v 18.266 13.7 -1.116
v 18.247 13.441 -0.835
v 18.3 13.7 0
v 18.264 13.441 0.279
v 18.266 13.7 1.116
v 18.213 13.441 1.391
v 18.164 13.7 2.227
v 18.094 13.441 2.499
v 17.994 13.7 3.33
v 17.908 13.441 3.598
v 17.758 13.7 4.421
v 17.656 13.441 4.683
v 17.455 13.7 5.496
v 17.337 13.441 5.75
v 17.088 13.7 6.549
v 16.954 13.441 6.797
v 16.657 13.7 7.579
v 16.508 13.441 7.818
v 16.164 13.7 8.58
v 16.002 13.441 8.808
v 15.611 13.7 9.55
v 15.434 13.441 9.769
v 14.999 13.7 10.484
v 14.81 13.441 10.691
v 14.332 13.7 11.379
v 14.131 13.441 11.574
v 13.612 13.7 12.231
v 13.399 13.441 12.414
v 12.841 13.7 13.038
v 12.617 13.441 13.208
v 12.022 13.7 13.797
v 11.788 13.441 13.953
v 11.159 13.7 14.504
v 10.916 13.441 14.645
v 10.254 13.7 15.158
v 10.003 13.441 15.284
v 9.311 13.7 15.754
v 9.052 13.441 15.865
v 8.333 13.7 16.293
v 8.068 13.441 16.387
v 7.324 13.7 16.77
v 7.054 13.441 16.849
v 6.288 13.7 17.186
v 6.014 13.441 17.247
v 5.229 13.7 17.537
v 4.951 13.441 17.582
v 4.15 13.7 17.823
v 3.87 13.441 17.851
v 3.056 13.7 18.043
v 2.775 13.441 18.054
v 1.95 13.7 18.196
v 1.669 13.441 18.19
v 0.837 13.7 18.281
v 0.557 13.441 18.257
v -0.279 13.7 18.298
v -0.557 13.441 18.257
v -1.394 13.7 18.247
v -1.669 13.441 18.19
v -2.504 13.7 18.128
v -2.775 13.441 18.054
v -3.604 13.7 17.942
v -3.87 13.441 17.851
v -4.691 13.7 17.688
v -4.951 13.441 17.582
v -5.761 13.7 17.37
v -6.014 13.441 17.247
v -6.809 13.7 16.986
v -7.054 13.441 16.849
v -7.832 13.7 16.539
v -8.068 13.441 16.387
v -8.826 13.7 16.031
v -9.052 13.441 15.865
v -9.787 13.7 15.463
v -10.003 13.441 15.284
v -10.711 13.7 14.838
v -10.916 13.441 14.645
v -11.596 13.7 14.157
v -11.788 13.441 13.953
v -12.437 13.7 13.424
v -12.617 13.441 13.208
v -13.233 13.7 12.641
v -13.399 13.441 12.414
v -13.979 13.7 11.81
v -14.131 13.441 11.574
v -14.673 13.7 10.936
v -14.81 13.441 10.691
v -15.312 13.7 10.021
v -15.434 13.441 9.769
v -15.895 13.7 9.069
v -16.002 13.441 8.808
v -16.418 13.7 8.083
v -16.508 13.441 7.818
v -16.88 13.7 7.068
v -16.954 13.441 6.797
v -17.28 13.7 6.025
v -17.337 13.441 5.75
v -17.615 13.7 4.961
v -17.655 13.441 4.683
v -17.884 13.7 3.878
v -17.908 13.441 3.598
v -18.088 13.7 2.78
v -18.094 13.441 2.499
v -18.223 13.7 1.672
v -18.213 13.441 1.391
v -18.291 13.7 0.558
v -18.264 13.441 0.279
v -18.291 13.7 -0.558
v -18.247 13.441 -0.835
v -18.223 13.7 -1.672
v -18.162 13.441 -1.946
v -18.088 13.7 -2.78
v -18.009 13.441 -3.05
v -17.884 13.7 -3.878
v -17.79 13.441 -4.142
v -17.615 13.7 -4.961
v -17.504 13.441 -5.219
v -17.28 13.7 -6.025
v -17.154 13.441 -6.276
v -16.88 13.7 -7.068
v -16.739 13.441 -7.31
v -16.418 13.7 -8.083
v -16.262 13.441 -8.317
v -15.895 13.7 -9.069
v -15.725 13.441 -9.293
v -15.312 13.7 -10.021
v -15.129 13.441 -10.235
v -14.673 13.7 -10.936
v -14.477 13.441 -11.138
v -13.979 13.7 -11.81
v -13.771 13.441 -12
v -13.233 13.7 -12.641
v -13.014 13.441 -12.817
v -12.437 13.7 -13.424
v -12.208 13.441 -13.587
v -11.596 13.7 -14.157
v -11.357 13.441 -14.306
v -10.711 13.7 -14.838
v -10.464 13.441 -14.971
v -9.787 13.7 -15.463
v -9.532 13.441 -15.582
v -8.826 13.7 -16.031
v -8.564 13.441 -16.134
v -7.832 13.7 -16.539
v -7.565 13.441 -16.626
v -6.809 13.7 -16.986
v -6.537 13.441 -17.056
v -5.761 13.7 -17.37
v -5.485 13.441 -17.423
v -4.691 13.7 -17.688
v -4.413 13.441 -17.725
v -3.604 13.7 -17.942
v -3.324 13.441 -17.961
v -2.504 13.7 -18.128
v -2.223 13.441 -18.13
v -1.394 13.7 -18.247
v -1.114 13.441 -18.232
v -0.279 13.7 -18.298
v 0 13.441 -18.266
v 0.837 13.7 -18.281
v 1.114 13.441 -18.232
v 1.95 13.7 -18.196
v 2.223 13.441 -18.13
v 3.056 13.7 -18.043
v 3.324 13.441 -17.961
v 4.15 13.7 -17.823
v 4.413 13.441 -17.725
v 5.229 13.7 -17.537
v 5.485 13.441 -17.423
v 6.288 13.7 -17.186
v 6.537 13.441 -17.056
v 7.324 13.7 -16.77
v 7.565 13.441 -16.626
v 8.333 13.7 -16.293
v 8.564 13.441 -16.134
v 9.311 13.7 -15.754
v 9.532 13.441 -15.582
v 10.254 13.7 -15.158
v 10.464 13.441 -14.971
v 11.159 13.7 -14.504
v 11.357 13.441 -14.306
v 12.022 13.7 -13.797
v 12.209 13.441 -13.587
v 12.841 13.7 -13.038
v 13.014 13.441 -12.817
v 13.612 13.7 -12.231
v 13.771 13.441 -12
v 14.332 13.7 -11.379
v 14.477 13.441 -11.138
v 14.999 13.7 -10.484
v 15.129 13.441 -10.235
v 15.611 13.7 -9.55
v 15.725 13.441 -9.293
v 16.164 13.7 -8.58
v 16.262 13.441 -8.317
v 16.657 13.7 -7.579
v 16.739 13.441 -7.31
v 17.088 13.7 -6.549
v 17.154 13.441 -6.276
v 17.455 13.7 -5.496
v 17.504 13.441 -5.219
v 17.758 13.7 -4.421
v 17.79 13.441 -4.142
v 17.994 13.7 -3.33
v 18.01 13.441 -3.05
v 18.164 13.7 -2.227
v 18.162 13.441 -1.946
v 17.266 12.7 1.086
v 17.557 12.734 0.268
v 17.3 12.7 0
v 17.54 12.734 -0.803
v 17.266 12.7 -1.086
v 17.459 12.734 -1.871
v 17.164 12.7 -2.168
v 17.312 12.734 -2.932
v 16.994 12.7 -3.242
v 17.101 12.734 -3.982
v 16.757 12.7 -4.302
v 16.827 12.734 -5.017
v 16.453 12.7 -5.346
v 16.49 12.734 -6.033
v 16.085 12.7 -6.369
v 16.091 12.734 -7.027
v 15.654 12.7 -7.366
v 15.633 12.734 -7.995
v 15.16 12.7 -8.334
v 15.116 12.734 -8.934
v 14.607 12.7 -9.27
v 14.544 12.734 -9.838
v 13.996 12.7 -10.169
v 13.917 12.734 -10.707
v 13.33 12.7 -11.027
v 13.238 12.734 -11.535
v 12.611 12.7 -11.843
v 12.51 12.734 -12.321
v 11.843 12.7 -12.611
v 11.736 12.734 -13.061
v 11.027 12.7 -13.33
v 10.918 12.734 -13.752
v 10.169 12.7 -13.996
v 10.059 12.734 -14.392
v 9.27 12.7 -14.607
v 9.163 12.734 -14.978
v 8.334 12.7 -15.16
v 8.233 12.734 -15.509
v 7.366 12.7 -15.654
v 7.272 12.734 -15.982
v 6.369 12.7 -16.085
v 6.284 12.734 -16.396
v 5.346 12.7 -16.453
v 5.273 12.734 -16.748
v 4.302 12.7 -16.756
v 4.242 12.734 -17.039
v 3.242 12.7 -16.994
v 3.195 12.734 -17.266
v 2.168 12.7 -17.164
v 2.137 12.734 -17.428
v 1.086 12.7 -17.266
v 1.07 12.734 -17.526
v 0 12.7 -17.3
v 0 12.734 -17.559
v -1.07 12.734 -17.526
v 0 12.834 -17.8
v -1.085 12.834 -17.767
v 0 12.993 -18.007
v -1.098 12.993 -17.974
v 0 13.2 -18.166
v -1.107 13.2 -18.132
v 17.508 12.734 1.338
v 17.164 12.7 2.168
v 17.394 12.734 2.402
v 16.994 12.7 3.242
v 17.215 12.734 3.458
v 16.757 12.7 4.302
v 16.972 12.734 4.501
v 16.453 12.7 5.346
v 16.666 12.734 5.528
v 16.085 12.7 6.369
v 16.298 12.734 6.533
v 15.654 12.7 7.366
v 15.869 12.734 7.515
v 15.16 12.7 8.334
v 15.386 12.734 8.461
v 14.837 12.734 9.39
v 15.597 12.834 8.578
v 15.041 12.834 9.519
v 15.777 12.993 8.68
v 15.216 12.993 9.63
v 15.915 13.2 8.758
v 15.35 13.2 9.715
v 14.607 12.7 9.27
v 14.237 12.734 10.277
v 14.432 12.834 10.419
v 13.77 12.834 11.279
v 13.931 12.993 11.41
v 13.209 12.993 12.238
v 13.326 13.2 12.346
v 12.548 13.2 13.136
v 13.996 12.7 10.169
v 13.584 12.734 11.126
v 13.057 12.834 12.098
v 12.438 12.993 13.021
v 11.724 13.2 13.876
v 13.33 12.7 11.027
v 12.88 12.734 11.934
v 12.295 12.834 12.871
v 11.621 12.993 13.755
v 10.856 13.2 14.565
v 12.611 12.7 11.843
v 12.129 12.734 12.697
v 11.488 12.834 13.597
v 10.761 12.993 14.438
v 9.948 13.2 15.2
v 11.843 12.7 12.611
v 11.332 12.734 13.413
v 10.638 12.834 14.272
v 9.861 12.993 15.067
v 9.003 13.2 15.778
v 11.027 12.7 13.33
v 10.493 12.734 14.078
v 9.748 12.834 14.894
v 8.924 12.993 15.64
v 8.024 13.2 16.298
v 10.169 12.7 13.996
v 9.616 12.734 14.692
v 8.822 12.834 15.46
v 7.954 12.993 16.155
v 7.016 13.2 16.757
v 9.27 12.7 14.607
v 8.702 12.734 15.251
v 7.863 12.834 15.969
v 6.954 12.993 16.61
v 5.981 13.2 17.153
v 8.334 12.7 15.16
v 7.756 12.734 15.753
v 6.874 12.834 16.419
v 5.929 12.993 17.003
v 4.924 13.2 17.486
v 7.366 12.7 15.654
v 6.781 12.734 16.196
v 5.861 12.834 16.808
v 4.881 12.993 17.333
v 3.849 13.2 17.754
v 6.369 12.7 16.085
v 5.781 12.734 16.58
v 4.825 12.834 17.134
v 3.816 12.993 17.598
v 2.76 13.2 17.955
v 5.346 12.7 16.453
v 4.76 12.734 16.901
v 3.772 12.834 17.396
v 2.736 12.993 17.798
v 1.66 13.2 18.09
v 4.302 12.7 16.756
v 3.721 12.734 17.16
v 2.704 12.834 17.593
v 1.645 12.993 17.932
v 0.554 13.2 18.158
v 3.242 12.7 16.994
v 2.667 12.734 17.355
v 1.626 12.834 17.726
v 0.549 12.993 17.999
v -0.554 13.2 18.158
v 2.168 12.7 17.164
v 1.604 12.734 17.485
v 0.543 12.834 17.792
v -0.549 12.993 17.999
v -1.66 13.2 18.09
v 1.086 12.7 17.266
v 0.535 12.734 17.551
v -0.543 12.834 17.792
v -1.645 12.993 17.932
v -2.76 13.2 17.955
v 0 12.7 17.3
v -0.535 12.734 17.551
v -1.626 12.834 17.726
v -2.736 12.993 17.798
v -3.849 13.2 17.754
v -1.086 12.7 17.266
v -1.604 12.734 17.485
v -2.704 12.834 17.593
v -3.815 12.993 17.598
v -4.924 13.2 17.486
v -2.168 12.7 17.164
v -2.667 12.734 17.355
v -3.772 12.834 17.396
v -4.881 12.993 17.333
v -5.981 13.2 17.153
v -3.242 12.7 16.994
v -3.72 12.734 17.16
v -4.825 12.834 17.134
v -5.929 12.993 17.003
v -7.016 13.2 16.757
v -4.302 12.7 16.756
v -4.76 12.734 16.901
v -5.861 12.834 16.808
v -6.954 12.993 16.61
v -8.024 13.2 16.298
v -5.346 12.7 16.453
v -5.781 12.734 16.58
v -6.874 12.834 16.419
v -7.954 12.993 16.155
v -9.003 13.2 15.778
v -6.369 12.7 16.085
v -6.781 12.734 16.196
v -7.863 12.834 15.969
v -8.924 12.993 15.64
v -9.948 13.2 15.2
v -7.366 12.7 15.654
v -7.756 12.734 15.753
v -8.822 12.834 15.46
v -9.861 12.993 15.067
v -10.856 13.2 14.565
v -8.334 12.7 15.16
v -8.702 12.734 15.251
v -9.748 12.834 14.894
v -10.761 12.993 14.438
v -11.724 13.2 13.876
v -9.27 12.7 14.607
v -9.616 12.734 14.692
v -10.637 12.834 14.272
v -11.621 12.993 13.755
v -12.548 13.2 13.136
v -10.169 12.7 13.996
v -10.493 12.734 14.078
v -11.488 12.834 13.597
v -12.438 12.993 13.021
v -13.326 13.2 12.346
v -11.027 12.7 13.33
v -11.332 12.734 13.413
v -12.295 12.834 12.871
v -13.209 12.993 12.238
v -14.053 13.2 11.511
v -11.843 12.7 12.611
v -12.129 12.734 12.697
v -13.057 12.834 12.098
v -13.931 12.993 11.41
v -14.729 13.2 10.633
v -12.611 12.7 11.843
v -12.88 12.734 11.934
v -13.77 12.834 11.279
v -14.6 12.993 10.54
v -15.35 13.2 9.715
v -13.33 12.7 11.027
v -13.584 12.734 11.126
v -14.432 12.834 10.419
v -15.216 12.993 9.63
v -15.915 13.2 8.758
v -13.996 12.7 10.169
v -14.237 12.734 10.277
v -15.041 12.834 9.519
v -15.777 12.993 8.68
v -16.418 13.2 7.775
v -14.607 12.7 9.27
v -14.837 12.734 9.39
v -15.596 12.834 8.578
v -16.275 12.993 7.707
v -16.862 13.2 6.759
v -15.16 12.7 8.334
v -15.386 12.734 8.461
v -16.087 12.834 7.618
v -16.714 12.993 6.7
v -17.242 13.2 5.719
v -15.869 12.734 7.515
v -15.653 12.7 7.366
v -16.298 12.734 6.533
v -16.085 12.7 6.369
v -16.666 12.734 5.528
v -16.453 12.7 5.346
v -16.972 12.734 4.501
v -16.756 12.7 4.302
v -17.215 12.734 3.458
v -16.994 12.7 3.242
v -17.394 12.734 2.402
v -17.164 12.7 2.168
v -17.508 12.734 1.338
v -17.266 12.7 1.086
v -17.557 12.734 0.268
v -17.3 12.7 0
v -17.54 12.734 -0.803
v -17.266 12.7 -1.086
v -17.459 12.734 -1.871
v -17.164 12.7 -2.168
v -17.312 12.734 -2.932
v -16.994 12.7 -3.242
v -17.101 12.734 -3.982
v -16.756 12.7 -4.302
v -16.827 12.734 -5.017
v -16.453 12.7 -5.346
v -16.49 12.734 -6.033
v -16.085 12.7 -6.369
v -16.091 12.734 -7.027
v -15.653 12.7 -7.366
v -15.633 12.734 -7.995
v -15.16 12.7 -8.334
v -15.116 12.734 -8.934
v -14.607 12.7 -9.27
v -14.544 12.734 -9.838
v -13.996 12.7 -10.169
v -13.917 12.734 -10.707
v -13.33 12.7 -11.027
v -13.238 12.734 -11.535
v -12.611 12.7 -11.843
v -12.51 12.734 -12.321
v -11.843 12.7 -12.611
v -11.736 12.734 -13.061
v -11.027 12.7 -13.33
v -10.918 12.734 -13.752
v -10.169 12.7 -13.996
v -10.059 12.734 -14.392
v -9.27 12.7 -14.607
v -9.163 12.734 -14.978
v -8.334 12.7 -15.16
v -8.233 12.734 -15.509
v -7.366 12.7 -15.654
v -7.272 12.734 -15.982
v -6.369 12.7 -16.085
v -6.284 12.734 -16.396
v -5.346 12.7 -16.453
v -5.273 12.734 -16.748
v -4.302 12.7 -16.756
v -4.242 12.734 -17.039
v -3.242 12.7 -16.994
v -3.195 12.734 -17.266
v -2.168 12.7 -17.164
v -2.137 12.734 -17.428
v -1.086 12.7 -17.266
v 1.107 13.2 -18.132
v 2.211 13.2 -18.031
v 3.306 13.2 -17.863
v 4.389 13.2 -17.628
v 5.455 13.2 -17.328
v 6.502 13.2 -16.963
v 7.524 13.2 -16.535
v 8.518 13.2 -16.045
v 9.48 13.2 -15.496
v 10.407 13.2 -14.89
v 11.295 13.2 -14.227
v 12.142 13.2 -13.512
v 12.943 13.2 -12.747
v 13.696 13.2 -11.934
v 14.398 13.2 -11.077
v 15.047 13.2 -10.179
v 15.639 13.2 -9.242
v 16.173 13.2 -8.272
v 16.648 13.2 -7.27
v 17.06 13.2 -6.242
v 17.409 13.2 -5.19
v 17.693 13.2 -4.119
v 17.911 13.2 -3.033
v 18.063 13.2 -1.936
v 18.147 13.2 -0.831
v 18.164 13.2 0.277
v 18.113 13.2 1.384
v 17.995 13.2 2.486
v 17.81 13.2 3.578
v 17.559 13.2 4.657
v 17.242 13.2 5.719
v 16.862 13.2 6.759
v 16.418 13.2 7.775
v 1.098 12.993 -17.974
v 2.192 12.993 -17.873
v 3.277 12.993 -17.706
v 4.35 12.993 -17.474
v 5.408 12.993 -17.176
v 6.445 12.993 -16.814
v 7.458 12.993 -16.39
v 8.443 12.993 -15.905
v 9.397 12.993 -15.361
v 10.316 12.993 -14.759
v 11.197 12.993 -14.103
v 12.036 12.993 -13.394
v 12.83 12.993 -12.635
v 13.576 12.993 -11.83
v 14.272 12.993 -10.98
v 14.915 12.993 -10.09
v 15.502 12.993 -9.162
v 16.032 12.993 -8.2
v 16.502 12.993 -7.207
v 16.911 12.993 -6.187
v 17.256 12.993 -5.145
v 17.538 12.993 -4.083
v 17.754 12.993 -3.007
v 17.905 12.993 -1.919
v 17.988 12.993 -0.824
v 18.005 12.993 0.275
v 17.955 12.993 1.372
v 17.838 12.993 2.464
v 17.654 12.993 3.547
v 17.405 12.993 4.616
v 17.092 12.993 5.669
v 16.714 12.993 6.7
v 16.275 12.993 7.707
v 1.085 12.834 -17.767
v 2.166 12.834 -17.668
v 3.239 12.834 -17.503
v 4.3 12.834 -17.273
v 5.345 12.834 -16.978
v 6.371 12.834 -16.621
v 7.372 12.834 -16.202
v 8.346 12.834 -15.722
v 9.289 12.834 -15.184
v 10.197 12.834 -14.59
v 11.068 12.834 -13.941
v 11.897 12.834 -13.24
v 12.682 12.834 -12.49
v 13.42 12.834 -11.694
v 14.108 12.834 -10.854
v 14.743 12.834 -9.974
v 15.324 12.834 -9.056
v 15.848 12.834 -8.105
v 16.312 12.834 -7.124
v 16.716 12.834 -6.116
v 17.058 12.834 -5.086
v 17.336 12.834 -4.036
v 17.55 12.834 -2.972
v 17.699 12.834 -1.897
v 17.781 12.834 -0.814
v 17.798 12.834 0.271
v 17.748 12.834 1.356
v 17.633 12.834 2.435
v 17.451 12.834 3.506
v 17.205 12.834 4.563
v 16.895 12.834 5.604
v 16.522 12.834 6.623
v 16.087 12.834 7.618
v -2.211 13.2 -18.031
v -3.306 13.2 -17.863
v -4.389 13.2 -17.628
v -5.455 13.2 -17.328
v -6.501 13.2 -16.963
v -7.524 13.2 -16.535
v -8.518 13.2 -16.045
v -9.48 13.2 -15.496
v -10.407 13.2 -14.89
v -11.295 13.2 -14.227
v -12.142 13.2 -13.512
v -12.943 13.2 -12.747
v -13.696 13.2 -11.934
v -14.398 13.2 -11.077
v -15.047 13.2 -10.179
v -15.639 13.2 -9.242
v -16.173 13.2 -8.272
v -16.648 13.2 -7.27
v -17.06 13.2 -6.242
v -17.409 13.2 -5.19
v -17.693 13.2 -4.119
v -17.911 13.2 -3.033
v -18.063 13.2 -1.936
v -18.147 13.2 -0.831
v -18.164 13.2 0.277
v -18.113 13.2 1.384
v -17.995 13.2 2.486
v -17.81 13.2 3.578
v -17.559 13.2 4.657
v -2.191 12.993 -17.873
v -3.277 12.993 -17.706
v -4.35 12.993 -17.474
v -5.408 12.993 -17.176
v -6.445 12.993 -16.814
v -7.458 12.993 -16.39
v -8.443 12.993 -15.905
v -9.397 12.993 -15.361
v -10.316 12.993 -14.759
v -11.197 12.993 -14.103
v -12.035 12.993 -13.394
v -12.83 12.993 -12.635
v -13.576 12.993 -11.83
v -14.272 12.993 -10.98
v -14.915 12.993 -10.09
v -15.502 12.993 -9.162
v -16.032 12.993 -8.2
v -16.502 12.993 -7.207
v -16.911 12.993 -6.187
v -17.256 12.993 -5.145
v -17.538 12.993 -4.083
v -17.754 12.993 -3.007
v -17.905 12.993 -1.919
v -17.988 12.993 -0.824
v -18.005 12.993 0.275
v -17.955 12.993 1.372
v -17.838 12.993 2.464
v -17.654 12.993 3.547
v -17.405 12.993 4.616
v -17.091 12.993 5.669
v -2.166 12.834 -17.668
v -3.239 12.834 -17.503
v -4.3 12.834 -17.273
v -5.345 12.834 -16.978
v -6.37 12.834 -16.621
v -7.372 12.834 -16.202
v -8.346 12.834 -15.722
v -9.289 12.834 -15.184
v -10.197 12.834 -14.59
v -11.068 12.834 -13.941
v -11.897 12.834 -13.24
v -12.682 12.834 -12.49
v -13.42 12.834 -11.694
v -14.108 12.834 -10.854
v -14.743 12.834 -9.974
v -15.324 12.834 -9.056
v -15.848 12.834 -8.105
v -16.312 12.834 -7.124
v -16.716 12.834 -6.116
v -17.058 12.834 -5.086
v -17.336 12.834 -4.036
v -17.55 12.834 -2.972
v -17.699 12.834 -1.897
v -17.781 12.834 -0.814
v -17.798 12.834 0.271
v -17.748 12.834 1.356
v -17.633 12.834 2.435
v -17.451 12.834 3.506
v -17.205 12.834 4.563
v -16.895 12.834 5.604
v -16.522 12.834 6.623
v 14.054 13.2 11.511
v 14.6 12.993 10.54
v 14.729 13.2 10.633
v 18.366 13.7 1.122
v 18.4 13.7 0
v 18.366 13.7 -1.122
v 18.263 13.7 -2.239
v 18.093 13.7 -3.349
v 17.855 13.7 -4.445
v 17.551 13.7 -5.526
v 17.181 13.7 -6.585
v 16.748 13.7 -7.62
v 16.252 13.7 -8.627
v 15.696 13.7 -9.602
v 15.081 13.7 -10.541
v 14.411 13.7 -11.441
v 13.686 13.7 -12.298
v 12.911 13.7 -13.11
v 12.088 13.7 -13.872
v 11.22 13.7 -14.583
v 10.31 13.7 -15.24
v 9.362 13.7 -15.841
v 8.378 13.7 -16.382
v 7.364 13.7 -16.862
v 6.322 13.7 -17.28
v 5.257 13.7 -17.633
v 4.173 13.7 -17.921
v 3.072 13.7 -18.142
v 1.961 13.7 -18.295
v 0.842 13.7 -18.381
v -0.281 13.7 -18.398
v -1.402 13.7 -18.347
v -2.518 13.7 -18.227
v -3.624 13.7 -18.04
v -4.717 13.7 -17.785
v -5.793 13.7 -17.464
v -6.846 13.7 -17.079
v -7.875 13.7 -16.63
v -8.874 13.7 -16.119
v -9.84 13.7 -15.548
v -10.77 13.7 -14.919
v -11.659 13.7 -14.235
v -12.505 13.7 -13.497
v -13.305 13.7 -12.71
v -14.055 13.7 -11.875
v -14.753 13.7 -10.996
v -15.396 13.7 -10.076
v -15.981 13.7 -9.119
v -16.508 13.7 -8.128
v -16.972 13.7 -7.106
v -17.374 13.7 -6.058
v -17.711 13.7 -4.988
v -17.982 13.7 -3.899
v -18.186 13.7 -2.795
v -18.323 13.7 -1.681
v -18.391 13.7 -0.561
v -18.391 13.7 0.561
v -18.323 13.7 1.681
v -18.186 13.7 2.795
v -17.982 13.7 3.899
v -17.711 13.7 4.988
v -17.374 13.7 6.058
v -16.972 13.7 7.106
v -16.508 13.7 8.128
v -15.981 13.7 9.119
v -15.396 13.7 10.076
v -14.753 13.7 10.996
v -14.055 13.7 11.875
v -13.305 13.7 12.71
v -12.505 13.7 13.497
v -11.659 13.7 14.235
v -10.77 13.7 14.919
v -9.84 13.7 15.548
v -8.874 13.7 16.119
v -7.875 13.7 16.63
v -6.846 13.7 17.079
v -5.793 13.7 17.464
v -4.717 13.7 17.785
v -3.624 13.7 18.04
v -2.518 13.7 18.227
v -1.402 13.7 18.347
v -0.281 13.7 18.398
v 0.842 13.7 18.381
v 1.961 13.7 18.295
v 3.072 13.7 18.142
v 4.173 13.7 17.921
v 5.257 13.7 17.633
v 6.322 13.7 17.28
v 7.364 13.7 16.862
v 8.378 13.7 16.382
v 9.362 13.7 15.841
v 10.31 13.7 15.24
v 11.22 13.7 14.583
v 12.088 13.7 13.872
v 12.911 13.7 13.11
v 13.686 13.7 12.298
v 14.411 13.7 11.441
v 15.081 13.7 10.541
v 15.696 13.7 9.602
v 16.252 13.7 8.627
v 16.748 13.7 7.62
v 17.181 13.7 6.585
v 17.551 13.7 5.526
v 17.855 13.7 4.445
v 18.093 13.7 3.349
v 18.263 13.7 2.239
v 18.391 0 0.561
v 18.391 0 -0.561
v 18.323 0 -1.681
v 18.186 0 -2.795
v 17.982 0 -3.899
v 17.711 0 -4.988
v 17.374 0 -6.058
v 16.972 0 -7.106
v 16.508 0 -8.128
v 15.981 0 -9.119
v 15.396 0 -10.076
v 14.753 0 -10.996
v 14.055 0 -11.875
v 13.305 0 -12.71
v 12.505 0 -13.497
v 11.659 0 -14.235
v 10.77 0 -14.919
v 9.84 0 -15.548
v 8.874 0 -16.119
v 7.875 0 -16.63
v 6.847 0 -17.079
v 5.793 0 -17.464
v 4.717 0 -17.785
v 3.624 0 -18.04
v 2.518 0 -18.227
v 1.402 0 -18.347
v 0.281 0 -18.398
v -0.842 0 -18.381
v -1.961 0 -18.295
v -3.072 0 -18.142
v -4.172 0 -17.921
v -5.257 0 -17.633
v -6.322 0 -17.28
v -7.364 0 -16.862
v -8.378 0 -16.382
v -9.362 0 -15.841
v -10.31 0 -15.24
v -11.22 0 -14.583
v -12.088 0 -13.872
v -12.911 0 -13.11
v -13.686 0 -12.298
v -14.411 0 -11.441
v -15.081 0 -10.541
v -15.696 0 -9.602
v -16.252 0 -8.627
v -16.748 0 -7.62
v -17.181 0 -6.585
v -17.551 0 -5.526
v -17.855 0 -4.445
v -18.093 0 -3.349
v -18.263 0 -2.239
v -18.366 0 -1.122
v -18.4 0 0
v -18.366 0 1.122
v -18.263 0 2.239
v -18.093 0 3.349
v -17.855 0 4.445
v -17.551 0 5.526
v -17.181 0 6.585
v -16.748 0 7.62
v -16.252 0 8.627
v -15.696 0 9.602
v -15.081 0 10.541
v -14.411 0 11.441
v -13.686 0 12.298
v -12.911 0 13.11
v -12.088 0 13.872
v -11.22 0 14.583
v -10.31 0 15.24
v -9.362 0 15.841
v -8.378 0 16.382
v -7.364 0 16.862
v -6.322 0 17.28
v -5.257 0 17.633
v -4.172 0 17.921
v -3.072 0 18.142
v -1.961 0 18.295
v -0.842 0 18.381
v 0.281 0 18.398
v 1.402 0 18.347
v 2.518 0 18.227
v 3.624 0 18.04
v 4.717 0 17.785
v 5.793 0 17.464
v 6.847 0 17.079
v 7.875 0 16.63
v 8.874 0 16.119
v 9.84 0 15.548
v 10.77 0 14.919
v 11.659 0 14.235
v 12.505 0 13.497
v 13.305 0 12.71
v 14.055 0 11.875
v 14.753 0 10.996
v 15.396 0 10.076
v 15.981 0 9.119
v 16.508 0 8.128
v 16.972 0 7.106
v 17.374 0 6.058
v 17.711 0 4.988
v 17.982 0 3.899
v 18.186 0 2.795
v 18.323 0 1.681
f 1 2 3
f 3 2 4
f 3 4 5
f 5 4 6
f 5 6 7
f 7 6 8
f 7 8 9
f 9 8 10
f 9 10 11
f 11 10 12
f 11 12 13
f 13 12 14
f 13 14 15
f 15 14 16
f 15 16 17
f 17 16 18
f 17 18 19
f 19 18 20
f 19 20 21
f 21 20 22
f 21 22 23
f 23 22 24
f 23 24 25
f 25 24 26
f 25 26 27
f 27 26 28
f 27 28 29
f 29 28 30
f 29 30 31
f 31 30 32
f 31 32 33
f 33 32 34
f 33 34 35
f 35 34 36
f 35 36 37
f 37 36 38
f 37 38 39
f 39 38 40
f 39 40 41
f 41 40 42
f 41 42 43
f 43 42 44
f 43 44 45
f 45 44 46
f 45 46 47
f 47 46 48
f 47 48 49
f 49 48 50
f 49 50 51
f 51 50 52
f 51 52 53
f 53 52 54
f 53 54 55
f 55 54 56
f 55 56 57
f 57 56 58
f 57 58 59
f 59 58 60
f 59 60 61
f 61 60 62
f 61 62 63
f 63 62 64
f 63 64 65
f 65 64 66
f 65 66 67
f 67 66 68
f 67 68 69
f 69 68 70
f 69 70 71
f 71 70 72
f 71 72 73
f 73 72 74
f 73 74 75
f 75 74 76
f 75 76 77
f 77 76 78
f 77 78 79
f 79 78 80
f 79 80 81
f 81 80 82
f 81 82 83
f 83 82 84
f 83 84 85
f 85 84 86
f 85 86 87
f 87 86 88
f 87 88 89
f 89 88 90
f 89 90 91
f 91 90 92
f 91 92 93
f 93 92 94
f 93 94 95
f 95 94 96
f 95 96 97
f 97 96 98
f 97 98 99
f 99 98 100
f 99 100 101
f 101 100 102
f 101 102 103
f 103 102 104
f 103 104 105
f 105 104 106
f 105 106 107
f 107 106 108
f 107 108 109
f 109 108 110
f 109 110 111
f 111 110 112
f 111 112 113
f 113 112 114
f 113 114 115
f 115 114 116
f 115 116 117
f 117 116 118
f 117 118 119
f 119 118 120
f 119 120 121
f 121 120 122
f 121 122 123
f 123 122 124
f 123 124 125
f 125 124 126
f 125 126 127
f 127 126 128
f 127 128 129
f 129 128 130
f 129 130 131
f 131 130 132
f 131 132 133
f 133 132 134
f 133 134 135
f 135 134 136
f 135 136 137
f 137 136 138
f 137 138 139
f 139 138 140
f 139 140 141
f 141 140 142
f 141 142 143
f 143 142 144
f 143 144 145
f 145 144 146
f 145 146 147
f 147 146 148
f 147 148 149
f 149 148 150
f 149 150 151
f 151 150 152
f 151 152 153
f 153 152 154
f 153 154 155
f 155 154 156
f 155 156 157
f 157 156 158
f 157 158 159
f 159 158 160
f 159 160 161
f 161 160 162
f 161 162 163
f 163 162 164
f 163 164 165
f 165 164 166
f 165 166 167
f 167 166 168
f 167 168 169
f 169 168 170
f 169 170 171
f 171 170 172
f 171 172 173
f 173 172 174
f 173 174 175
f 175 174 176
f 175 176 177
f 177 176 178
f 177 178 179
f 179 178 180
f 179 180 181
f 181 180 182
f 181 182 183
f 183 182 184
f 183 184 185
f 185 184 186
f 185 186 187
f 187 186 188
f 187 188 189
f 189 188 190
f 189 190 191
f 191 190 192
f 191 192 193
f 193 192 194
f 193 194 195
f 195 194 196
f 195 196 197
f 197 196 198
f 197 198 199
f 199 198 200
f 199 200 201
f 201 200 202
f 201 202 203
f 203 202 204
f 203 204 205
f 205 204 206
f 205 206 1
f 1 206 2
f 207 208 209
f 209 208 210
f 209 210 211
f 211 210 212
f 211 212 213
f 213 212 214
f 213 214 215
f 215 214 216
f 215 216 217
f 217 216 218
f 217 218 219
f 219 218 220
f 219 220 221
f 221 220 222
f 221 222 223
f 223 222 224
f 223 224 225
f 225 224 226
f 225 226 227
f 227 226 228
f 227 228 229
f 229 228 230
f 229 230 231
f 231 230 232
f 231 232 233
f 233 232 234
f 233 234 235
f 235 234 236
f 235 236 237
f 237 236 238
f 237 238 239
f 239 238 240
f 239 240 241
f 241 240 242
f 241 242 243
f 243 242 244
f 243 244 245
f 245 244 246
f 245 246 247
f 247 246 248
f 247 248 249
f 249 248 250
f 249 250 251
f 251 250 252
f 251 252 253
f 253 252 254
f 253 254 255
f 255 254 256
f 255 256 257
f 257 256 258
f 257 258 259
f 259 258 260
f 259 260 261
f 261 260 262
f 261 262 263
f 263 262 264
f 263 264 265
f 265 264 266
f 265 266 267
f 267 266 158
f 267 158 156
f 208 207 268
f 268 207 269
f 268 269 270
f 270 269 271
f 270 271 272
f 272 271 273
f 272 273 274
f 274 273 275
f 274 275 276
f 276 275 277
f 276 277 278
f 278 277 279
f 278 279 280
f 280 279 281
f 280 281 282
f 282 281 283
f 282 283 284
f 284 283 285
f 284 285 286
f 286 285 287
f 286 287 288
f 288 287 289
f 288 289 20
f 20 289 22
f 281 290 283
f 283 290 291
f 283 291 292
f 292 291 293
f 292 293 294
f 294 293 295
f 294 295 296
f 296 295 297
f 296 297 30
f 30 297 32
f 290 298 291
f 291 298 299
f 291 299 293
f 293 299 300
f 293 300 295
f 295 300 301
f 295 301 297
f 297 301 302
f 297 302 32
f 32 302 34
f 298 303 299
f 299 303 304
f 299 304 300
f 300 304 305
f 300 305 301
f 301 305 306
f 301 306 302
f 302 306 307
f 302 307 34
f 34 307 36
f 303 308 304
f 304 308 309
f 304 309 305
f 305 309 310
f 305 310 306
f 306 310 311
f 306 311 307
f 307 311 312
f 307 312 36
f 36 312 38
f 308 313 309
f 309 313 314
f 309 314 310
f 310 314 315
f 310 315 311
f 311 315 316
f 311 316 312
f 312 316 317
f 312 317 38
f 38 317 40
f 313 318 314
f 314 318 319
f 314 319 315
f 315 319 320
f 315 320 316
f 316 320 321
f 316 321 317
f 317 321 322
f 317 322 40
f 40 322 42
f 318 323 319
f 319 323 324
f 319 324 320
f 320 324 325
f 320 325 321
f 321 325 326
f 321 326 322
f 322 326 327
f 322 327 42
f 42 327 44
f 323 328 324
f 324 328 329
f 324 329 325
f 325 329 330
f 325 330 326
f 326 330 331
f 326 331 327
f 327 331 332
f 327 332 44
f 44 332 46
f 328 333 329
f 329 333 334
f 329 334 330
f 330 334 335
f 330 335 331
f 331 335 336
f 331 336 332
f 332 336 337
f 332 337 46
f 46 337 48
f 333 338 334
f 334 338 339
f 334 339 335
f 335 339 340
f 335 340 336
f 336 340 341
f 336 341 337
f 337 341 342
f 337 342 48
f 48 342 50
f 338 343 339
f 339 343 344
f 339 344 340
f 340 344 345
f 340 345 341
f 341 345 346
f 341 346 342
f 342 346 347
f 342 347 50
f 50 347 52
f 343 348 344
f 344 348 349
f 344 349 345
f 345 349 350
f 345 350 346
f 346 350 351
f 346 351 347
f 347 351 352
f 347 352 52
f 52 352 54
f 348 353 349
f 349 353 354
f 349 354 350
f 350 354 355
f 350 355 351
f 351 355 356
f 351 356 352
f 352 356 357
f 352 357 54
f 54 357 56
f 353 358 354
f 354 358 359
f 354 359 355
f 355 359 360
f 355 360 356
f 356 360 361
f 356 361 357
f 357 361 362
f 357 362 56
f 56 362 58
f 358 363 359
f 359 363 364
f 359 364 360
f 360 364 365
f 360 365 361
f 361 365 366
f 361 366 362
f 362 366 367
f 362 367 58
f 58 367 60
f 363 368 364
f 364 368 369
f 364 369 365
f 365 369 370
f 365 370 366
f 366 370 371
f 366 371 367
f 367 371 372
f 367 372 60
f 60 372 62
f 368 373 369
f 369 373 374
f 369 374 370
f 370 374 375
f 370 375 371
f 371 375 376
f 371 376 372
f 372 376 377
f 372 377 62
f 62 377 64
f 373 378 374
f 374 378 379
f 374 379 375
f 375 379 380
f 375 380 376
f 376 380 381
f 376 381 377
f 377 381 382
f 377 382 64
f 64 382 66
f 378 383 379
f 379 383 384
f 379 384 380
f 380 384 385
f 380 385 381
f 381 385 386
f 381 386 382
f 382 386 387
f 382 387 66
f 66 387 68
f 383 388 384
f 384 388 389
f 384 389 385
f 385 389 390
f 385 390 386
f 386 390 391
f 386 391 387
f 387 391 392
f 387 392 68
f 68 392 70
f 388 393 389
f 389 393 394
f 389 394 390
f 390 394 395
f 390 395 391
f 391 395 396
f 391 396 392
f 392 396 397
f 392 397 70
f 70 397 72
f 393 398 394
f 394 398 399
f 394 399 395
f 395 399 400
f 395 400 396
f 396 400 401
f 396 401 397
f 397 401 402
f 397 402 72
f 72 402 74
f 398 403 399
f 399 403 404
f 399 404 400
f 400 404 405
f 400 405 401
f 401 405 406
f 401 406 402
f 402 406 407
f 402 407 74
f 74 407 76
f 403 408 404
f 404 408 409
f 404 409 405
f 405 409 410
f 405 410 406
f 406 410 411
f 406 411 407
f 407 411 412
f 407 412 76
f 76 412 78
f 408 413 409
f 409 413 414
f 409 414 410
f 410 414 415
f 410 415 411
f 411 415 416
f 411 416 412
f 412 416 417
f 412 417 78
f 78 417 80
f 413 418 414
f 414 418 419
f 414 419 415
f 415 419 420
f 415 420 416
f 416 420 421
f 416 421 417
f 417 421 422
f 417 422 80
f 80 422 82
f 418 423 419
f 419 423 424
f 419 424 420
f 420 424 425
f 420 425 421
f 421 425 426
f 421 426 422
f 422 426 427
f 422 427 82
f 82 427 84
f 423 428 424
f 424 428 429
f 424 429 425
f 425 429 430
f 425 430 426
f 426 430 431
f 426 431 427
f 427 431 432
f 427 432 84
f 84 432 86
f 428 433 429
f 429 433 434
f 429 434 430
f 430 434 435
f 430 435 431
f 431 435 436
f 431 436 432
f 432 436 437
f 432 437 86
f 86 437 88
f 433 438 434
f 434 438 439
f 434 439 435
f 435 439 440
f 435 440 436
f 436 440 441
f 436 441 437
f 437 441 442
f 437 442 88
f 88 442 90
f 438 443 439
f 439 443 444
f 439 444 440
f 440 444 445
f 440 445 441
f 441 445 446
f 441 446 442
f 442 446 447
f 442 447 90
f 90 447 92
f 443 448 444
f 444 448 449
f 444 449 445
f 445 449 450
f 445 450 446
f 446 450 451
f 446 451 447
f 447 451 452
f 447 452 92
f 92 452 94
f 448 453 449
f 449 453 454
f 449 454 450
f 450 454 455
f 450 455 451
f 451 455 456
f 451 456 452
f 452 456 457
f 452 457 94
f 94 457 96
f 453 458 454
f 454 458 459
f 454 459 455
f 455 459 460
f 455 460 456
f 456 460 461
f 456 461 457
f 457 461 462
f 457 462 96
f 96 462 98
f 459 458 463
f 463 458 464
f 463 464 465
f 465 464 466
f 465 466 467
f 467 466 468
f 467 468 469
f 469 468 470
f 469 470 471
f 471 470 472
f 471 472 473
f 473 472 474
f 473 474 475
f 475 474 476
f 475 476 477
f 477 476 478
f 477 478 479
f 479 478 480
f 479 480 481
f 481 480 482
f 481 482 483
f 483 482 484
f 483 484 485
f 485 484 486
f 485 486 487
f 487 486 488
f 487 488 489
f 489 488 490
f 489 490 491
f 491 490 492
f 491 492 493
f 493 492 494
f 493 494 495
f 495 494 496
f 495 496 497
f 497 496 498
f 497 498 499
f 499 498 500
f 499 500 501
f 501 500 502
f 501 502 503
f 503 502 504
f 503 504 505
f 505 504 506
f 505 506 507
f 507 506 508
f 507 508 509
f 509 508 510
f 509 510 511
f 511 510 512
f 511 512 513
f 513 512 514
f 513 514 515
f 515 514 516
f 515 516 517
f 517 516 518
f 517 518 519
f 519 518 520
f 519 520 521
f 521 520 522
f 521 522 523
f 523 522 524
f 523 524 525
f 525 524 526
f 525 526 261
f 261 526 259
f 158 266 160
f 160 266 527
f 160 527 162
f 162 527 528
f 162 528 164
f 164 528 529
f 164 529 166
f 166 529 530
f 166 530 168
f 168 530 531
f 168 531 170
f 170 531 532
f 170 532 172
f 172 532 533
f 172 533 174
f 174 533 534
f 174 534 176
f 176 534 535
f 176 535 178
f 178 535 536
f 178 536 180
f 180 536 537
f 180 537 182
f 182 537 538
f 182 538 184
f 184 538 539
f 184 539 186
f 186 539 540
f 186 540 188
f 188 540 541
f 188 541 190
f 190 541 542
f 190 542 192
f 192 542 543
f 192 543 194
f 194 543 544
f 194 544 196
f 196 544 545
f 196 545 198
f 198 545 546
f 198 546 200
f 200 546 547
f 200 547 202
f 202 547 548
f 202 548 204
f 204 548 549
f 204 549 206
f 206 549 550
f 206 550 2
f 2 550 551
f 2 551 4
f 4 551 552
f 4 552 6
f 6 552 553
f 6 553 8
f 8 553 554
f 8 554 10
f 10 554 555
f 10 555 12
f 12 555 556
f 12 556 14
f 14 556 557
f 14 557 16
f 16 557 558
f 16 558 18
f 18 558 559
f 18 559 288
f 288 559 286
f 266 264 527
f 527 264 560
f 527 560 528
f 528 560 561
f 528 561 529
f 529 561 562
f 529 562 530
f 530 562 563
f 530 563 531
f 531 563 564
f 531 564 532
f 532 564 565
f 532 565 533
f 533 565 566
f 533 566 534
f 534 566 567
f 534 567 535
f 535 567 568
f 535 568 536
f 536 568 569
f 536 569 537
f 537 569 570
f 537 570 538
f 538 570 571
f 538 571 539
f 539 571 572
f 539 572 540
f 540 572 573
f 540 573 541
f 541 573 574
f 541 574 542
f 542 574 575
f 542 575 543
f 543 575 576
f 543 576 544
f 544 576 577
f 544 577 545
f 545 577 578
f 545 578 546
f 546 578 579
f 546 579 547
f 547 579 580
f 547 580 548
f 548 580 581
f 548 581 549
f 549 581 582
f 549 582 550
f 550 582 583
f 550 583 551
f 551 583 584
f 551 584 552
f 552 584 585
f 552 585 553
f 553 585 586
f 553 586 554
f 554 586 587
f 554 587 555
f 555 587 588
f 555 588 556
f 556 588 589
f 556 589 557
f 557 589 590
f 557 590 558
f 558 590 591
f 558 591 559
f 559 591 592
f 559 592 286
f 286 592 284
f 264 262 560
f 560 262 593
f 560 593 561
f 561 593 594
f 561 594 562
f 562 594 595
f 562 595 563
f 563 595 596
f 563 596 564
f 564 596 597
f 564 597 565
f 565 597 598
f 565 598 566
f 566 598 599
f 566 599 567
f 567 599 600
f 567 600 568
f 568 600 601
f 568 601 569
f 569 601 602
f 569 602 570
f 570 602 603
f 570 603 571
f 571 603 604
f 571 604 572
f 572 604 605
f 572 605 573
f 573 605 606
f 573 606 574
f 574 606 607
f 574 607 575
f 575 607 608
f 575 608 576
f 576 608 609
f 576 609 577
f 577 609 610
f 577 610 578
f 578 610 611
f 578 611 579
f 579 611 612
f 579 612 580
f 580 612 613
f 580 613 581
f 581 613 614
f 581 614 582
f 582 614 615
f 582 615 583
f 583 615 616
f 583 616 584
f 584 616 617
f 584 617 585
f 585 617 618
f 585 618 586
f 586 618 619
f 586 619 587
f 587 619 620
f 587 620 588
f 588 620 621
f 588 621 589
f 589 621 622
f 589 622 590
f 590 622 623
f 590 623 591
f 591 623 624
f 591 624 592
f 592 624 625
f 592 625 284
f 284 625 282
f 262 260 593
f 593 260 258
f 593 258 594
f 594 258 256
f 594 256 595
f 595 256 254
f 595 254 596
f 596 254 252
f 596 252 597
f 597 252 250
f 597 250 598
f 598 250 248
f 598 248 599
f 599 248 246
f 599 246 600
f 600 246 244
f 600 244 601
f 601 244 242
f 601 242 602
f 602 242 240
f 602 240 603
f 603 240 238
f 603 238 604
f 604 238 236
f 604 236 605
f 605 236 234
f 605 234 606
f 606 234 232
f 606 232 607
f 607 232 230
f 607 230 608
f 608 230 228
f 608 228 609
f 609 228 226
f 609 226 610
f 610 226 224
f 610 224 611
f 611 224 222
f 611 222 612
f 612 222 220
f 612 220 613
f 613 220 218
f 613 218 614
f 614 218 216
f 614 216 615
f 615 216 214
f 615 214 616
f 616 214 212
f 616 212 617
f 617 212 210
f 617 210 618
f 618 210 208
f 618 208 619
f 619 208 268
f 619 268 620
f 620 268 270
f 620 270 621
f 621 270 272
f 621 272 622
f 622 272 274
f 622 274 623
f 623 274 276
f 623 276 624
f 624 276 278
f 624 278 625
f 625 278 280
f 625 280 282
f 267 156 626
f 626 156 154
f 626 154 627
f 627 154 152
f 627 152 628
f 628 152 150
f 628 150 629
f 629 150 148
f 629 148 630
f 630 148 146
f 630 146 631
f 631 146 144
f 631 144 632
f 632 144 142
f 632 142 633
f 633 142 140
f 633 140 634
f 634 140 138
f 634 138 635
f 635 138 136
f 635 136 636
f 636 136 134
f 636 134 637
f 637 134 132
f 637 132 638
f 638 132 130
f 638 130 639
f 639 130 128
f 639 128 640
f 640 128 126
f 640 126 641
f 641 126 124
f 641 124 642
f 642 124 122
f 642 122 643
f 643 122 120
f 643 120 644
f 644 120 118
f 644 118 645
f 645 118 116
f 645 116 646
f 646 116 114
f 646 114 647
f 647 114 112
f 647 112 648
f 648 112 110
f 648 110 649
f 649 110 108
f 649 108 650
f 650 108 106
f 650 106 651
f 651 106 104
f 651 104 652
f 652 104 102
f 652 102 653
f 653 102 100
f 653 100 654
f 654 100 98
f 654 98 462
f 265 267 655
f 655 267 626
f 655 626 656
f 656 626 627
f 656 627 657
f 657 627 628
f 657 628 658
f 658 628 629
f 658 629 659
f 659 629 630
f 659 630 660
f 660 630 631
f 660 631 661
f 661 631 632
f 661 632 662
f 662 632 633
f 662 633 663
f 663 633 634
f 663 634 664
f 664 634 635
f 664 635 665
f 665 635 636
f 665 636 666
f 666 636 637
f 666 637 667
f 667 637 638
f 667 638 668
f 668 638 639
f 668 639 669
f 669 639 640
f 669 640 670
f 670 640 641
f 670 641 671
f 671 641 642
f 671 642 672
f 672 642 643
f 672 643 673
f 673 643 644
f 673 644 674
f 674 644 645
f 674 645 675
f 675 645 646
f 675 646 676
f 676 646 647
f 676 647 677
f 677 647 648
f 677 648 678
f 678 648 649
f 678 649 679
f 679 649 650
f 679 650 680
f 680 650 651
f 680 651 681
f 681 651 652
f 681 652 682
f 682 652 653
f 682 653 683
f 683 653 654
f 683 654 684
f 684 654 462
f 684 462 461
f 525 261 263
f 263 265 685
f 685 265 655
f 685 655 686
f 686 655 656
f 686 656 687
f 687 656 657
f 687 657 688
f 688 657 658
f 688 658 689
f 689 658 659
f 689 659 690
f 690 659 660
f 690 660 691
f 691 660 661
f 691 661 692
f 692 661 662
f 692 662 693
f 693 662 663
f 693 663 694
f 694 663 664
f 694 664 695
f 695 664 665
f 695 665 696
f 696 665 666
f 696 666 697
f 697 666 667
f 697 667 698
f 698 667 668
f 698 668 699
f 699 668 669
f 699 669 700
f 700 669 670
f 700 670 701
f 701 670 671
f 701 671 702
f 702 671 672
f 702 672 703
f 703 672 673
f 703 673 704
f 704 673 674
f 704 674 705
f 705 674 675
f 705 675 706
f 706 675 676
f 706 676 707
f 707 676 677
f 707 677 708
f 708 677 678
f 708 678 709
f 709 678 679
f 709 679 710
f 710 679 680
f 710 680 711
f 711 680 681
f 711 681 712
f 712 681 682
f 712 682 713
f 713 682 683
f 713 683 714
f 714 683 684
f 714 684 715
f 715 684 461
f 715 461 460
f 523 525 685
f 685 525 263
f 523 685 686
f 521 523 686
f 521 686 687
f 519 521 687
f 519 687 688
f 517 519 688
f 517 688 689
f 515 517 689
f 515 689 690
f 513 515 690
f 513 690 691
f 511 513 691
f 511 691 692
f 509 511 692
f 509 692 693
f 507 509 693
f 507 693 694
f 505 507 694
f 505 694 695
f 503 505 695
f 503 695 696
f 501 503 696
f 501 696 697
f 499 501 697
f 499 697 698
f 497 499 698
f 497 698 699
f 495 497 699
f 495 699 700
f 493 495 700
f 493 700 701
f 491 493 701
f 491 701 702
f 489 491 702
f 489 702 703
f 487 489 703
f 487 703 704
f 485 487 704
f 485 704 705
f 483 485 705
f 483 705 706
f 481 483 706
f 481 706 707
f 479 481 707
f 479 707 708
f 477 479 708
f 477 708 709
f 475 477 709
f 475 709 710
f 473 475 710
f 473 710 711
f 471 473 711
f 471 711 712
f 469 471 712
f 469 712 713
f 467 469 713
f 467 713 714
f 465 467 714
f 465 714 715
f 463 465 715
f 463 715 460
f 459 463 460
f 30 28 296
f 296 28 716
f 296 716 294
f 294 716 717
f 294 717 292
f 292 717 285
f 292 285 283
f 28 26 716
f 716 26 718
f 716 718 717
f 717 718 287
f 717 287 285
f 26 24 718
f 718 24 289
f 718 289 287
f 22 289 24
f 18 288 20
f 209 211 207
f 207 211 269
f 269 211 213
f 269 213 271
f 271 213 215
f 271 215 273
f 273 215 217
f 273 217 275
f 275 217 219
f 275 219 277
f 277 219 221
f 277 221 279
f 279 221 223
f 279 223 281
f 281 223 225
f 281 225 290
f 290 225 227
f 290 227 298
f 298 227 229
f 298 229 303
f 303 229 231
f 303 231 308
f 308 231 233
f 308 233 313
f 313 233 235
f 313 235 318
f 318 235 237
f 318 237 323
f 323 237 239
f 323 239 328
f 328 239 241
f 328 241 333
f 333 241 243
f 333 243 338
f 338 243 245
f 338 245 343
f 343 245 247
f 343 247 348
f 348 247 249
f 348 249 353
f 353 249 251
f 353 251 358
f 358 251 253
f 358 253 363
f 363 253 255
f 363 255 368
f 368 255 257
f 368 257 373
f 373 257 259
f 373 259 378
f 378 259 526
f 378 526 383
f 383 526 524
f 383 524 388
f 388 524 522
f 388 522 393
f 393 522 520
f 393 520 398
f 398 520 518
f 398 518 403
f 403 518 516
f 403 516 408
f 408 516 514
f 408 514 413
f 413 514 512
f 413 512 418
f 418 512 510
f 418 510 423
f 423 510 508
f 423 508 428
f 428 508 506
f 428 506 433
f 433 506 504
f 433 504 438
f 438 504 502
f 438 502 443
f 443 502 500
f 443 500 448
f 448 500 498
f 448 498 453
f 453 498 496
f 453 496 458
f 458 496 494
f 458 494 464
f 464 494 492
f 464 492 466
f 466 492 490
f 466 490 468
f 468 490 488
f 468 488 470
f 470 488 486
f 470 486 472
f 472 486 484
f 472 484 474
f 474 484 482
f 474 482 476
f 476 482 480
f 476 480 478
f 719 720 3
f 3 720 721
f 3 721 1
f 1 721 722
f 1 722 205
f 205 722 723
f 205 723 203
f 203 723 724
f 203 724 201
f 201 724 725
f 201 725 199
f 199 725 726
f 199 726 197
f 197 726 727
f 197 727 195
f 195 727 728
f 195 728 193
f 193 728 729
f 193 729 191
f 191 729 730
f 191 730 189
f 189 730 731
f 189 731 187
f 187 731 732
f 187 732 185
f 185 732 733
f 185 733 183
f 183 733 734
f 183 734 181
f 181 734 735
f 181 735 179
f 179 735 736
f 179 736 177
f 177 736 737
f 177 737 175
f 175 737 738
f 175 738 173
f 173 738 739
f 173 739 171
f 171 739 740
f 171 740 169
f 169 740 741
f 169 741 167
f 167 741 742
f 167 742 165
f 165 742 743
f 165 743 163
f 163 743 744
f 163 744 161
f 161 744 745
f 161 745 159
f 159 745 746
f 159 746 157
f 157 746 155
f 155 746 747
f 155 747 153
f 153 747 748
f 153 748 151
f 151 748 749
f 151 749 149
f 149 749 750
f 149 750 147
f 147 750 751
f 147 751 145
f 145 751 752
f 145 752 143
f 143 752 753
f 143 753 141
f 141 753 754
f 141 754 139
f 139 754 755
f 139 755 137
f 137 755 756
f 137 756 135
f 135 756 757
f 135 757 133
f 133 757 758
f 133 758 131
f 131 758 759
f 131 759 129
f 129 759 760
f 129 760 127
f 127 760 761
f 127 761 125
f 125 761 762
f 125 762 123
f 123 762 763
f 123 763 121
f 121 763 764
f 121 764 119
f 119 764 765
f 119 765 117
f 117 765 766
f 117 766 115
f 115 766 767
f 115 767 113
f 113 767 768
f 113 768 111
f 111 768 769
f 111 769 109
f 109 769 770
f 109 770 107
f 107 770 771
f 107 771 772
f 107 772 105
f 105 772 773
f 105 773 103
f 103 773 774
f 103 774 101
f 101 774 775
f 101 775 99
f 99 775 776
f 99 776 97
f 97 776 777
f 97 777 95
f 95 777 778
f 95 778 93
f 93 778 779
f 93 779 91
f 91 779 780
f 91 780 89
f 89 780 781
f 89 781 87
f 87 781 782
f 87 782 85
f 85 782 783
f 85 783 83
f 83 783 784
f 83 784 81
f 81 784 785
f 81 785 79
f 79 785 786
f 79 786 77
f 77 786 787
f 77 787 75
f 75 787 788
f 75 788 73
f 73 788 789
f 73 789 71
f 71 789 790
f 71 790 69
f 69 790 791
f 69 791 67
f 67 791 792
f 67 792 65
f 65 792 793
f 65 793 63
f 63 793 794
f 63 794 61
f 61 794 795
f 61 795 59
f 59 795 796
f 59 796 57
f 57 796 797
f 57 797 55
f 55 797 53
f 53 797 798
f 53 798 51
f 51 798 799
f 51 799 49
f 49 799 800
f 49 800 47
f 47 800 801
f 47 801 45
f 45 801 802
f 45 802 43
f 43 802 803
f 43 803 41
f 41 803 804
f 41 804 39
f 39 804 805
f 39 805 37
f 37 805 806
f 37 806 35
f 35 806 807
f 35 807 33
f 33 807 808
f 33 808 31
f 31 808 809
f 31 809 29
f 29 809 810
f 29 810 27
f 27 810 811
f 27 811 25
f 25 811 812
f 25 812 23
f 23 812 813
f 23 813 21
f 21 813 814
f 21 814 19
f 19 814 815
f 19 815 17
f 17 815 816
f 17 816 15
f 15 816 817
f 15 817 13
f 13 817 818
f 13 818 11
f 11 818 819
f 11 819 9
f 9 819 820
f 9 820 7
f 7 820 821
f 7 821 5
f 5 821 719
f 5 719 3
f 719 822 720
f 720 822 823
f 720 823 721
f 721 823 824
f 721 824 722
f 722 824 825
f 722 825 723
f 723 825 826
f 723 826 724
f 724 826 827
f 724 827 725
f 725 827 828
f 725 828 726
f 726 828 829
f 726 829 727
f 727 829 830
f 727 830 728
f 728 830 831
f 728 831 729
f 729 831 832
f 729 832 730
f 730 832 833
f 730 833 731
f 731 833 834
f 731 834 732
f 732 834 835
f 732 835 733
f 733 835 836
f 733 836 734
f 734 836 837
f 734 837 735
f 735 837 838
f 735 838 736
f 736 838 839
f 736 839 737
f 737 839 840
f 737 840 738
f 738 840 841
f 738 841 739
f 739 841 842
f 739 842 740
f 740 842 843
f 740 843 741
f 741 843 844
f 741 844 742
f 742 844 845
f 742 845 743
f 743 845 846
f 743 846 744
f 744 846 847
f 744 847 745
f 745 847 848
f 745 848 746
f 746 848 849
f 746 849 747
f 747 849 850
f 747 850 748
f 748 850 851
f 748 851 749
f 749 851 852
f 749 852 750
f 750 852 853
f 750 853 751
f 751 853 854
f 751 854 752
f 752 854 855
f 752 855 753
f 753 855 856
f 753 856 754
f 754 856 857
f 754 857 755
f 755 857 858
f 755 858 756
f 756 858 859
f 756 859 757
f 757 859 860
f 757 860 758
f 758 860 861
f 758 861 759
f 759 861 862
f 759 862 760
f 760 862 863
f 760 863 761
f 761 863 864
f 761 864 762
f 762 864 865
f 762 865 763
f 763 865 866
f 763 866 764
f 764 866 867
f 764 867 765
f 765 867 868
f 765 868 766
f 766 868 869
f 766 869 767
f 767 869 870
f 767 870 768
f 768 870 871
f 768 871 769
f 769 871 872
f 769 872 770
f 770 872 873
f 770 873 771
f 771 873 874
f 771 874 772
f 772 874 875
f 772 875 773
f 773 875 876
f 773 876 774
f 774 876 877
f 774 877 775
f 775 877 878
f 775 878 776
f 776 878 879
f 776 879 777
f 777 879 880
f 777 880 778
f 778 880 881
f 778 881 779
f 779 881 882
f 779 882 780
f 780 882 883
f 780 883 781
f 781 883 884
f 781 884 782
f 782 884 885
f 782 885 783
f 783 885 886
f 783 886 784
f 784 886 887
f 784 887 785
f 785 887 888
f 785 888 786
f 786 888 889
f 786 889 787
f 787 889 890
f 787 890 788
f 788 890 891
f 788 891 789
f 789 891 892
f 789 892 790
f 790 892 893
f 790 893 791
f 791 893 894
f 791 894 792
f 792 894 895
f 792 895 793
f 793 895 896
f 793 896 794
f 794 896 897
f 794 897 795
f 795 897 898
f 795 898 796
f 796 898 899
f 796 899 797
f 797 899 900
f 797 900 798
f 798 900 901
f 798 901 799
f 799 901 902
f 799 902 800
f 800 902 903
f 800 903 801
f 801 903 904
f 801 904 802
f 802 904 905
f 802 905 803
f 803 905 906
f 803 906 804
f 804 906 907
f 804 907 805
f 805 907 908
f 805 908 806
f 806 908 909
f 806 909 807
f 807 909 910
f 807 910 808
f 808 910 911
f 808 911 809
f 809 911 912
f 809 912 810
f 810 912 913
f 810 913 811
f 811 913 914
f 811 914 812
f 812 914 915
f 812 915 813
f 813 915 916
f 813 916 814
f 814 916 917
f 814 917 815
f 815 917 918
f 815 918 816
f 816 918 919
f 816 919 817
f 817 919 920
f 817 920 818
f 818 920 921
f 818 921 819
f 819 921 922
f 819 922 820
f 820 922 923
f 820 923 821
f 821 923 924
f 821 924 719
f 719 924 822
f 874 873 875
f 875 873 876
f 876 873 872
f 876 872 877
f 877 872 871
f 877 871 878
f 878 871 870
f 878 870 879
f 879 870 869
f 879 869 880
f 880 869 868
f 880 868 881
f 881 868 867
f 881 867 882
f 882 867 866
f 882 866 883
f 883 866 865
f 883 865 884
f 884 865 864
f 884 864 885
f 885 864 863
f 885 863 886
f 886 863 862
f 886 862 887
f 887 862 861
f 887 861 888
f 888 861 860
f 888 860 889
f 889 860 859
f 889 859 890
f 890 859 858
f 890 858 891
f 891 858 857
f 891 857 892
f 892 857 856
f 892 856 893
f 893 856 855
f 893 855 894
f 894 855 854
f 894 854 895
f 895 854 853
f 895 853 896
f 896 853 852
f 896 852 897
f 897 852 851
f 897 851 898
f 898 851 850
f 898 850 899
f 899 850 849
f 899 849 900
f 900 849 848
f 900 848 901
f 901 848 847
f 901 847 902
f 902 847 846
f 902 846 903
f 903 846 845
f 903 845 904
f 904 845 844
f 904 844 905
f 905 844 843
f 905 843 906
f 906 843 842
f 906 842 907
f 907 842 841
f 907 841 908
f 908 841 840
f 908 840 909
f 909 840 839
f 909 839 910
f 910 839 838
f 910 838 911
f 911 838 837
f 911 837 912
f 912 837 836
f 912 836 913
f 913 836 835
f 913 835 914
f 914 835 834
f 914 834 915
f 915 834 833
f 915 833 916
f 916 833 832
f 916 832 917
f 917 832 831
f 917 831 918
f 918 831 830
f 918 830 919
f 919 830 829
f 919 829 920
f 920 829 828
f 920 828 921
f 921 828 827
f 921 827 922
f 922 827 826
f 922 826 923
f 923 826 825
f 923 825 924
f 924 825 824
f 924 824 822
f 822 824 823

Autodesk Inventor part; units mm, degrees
ref_plane "YZ Plane" through (0, 0, 0) normal (1, 0, 0) x (0, 1, 0)
ref_plane "XZ Plane" through (0, 0, 0) normal (0, 1, 0) x (-1, 0, 0)
ref_plane "XY Plane" through (0, 0, 0) normal (0, 0, 1) x (1, 0, 0)
sketch "Sketch3" plane through (0, 0, 0) normal (0, 1, 0) x (-1, 0, 0)
  circle A0 centre (0, 0) radius 18.4
  dimension "d32" = 36.8
extrude "Extrusion4" add sketch "Sketch3" along normal blind 12.7
sketch "Sketch4" plane through (0, 12.7, 0) normal (0, 1, 0) x (1, 0, 0)
  circle A0 centre (0, 0) radius 18.4 projected
  circle A1 centre (0, 0) radius 17.75
  circle A2 centre (0, 0) radius 18.4 projected
  circle A3 centre (0, 0) radius 18.3
  dimension "d35" = 0.1
sketch "Sketch4 outline for Extrusion5" plane through (0, 12.7, 0) normal (0, 1, 0) x (1, 0, 0)
  circle A0 centre (0, 0) radius 18.4
  circle A1 centre (0, 0) radius 18.3
extrude "Extrusion5" add sketch "Sketch4 outline for Extrusion5" along normal blind 1
fillet "Fillet1" radius 1 1 edges at (-18.3, 12.7, 0)
equation "\"d32\" = icicles25D"
equation "\"d33\" = chairThickness"
equation "\"moduleHeight\" = 96"
equation "\"moduleMountD\" = 6.8"
equation "\"moduleCornerR\" = 5"
equation "\"d4\" = moduleCornerR"
equation "\"d5\" = moduleMountD"
equation "\"d6\" = moduleMountD"
equation "\"d8\" = moduleMountD"
equation "\"d10\" = moduleMountD"
equation "\"moduleOpeningR\" = 25"
equation "\"d13\" = moduleOpeningR"
equation "\"thickness\" = 6"
equation "\"d15\" = thickness"
equation "\"d16\" = 0"
equation "\"iciclesMountD\" = 42.5"
equation "\"d17\" = iciclesMountD"
equation "\"clearanceM3\" = 3.6"
equation "\"d18\" = clearanceM6"
equation "\"d21\" = 360deg"
equation "\"d0\" = moduleHeight"
equation "\"iciclesBaseOuterD\" = 48"
equation "\"iciclesPlugD\" = 35.5"
equation "\"chairThickness\" = 12.7"
equation "\"isiclesBaseThickness\" = 3"
equation "\"clearanceM6\" = 3.6"
equation "\"d7\" = iciclesBaseOuterD"
equation "\"d9\" = iciclesMountD"
equation "\"d22\" = 360deg"
equation "\"d24\" = isiclesBaseThickness"
equation "\"d25\" = 0"
equation "\"d29\" = isiclesBaseThickness"
equation "\"compressedGasket\" = 0.5"
equation "\"d31\" = 0"
equation "\"iciclesPlugNeck\" = 16"
equation "\"headClearanceM3\" = 5.6"
equation "\"d42\" = 360deg"
equation "\"d45\" = 0"
equation "\"iciclesFilletR\" = 2"
equation "\"d46\" = iciclesFilletR"
equation "\"d47\" = iciclesFilletR"
equation "\"icicles25D\" = 36.8"
equation "\"icicles25T\" = 8.4"
equation "\"icicles25ND\" = 18"
equation "\"insertM3\" = 4"
equation "\"d11\" = insertM3"
equation "\"isiclesPlugT\" = icicles25T"
equation "\"d30\" = isiclesPlugT + chairThickness + compressedGasket"
equation "\"d39\" = headClearanceM3"
properties part number "Module_bottom_Icicles26_v2_3DPrint"
